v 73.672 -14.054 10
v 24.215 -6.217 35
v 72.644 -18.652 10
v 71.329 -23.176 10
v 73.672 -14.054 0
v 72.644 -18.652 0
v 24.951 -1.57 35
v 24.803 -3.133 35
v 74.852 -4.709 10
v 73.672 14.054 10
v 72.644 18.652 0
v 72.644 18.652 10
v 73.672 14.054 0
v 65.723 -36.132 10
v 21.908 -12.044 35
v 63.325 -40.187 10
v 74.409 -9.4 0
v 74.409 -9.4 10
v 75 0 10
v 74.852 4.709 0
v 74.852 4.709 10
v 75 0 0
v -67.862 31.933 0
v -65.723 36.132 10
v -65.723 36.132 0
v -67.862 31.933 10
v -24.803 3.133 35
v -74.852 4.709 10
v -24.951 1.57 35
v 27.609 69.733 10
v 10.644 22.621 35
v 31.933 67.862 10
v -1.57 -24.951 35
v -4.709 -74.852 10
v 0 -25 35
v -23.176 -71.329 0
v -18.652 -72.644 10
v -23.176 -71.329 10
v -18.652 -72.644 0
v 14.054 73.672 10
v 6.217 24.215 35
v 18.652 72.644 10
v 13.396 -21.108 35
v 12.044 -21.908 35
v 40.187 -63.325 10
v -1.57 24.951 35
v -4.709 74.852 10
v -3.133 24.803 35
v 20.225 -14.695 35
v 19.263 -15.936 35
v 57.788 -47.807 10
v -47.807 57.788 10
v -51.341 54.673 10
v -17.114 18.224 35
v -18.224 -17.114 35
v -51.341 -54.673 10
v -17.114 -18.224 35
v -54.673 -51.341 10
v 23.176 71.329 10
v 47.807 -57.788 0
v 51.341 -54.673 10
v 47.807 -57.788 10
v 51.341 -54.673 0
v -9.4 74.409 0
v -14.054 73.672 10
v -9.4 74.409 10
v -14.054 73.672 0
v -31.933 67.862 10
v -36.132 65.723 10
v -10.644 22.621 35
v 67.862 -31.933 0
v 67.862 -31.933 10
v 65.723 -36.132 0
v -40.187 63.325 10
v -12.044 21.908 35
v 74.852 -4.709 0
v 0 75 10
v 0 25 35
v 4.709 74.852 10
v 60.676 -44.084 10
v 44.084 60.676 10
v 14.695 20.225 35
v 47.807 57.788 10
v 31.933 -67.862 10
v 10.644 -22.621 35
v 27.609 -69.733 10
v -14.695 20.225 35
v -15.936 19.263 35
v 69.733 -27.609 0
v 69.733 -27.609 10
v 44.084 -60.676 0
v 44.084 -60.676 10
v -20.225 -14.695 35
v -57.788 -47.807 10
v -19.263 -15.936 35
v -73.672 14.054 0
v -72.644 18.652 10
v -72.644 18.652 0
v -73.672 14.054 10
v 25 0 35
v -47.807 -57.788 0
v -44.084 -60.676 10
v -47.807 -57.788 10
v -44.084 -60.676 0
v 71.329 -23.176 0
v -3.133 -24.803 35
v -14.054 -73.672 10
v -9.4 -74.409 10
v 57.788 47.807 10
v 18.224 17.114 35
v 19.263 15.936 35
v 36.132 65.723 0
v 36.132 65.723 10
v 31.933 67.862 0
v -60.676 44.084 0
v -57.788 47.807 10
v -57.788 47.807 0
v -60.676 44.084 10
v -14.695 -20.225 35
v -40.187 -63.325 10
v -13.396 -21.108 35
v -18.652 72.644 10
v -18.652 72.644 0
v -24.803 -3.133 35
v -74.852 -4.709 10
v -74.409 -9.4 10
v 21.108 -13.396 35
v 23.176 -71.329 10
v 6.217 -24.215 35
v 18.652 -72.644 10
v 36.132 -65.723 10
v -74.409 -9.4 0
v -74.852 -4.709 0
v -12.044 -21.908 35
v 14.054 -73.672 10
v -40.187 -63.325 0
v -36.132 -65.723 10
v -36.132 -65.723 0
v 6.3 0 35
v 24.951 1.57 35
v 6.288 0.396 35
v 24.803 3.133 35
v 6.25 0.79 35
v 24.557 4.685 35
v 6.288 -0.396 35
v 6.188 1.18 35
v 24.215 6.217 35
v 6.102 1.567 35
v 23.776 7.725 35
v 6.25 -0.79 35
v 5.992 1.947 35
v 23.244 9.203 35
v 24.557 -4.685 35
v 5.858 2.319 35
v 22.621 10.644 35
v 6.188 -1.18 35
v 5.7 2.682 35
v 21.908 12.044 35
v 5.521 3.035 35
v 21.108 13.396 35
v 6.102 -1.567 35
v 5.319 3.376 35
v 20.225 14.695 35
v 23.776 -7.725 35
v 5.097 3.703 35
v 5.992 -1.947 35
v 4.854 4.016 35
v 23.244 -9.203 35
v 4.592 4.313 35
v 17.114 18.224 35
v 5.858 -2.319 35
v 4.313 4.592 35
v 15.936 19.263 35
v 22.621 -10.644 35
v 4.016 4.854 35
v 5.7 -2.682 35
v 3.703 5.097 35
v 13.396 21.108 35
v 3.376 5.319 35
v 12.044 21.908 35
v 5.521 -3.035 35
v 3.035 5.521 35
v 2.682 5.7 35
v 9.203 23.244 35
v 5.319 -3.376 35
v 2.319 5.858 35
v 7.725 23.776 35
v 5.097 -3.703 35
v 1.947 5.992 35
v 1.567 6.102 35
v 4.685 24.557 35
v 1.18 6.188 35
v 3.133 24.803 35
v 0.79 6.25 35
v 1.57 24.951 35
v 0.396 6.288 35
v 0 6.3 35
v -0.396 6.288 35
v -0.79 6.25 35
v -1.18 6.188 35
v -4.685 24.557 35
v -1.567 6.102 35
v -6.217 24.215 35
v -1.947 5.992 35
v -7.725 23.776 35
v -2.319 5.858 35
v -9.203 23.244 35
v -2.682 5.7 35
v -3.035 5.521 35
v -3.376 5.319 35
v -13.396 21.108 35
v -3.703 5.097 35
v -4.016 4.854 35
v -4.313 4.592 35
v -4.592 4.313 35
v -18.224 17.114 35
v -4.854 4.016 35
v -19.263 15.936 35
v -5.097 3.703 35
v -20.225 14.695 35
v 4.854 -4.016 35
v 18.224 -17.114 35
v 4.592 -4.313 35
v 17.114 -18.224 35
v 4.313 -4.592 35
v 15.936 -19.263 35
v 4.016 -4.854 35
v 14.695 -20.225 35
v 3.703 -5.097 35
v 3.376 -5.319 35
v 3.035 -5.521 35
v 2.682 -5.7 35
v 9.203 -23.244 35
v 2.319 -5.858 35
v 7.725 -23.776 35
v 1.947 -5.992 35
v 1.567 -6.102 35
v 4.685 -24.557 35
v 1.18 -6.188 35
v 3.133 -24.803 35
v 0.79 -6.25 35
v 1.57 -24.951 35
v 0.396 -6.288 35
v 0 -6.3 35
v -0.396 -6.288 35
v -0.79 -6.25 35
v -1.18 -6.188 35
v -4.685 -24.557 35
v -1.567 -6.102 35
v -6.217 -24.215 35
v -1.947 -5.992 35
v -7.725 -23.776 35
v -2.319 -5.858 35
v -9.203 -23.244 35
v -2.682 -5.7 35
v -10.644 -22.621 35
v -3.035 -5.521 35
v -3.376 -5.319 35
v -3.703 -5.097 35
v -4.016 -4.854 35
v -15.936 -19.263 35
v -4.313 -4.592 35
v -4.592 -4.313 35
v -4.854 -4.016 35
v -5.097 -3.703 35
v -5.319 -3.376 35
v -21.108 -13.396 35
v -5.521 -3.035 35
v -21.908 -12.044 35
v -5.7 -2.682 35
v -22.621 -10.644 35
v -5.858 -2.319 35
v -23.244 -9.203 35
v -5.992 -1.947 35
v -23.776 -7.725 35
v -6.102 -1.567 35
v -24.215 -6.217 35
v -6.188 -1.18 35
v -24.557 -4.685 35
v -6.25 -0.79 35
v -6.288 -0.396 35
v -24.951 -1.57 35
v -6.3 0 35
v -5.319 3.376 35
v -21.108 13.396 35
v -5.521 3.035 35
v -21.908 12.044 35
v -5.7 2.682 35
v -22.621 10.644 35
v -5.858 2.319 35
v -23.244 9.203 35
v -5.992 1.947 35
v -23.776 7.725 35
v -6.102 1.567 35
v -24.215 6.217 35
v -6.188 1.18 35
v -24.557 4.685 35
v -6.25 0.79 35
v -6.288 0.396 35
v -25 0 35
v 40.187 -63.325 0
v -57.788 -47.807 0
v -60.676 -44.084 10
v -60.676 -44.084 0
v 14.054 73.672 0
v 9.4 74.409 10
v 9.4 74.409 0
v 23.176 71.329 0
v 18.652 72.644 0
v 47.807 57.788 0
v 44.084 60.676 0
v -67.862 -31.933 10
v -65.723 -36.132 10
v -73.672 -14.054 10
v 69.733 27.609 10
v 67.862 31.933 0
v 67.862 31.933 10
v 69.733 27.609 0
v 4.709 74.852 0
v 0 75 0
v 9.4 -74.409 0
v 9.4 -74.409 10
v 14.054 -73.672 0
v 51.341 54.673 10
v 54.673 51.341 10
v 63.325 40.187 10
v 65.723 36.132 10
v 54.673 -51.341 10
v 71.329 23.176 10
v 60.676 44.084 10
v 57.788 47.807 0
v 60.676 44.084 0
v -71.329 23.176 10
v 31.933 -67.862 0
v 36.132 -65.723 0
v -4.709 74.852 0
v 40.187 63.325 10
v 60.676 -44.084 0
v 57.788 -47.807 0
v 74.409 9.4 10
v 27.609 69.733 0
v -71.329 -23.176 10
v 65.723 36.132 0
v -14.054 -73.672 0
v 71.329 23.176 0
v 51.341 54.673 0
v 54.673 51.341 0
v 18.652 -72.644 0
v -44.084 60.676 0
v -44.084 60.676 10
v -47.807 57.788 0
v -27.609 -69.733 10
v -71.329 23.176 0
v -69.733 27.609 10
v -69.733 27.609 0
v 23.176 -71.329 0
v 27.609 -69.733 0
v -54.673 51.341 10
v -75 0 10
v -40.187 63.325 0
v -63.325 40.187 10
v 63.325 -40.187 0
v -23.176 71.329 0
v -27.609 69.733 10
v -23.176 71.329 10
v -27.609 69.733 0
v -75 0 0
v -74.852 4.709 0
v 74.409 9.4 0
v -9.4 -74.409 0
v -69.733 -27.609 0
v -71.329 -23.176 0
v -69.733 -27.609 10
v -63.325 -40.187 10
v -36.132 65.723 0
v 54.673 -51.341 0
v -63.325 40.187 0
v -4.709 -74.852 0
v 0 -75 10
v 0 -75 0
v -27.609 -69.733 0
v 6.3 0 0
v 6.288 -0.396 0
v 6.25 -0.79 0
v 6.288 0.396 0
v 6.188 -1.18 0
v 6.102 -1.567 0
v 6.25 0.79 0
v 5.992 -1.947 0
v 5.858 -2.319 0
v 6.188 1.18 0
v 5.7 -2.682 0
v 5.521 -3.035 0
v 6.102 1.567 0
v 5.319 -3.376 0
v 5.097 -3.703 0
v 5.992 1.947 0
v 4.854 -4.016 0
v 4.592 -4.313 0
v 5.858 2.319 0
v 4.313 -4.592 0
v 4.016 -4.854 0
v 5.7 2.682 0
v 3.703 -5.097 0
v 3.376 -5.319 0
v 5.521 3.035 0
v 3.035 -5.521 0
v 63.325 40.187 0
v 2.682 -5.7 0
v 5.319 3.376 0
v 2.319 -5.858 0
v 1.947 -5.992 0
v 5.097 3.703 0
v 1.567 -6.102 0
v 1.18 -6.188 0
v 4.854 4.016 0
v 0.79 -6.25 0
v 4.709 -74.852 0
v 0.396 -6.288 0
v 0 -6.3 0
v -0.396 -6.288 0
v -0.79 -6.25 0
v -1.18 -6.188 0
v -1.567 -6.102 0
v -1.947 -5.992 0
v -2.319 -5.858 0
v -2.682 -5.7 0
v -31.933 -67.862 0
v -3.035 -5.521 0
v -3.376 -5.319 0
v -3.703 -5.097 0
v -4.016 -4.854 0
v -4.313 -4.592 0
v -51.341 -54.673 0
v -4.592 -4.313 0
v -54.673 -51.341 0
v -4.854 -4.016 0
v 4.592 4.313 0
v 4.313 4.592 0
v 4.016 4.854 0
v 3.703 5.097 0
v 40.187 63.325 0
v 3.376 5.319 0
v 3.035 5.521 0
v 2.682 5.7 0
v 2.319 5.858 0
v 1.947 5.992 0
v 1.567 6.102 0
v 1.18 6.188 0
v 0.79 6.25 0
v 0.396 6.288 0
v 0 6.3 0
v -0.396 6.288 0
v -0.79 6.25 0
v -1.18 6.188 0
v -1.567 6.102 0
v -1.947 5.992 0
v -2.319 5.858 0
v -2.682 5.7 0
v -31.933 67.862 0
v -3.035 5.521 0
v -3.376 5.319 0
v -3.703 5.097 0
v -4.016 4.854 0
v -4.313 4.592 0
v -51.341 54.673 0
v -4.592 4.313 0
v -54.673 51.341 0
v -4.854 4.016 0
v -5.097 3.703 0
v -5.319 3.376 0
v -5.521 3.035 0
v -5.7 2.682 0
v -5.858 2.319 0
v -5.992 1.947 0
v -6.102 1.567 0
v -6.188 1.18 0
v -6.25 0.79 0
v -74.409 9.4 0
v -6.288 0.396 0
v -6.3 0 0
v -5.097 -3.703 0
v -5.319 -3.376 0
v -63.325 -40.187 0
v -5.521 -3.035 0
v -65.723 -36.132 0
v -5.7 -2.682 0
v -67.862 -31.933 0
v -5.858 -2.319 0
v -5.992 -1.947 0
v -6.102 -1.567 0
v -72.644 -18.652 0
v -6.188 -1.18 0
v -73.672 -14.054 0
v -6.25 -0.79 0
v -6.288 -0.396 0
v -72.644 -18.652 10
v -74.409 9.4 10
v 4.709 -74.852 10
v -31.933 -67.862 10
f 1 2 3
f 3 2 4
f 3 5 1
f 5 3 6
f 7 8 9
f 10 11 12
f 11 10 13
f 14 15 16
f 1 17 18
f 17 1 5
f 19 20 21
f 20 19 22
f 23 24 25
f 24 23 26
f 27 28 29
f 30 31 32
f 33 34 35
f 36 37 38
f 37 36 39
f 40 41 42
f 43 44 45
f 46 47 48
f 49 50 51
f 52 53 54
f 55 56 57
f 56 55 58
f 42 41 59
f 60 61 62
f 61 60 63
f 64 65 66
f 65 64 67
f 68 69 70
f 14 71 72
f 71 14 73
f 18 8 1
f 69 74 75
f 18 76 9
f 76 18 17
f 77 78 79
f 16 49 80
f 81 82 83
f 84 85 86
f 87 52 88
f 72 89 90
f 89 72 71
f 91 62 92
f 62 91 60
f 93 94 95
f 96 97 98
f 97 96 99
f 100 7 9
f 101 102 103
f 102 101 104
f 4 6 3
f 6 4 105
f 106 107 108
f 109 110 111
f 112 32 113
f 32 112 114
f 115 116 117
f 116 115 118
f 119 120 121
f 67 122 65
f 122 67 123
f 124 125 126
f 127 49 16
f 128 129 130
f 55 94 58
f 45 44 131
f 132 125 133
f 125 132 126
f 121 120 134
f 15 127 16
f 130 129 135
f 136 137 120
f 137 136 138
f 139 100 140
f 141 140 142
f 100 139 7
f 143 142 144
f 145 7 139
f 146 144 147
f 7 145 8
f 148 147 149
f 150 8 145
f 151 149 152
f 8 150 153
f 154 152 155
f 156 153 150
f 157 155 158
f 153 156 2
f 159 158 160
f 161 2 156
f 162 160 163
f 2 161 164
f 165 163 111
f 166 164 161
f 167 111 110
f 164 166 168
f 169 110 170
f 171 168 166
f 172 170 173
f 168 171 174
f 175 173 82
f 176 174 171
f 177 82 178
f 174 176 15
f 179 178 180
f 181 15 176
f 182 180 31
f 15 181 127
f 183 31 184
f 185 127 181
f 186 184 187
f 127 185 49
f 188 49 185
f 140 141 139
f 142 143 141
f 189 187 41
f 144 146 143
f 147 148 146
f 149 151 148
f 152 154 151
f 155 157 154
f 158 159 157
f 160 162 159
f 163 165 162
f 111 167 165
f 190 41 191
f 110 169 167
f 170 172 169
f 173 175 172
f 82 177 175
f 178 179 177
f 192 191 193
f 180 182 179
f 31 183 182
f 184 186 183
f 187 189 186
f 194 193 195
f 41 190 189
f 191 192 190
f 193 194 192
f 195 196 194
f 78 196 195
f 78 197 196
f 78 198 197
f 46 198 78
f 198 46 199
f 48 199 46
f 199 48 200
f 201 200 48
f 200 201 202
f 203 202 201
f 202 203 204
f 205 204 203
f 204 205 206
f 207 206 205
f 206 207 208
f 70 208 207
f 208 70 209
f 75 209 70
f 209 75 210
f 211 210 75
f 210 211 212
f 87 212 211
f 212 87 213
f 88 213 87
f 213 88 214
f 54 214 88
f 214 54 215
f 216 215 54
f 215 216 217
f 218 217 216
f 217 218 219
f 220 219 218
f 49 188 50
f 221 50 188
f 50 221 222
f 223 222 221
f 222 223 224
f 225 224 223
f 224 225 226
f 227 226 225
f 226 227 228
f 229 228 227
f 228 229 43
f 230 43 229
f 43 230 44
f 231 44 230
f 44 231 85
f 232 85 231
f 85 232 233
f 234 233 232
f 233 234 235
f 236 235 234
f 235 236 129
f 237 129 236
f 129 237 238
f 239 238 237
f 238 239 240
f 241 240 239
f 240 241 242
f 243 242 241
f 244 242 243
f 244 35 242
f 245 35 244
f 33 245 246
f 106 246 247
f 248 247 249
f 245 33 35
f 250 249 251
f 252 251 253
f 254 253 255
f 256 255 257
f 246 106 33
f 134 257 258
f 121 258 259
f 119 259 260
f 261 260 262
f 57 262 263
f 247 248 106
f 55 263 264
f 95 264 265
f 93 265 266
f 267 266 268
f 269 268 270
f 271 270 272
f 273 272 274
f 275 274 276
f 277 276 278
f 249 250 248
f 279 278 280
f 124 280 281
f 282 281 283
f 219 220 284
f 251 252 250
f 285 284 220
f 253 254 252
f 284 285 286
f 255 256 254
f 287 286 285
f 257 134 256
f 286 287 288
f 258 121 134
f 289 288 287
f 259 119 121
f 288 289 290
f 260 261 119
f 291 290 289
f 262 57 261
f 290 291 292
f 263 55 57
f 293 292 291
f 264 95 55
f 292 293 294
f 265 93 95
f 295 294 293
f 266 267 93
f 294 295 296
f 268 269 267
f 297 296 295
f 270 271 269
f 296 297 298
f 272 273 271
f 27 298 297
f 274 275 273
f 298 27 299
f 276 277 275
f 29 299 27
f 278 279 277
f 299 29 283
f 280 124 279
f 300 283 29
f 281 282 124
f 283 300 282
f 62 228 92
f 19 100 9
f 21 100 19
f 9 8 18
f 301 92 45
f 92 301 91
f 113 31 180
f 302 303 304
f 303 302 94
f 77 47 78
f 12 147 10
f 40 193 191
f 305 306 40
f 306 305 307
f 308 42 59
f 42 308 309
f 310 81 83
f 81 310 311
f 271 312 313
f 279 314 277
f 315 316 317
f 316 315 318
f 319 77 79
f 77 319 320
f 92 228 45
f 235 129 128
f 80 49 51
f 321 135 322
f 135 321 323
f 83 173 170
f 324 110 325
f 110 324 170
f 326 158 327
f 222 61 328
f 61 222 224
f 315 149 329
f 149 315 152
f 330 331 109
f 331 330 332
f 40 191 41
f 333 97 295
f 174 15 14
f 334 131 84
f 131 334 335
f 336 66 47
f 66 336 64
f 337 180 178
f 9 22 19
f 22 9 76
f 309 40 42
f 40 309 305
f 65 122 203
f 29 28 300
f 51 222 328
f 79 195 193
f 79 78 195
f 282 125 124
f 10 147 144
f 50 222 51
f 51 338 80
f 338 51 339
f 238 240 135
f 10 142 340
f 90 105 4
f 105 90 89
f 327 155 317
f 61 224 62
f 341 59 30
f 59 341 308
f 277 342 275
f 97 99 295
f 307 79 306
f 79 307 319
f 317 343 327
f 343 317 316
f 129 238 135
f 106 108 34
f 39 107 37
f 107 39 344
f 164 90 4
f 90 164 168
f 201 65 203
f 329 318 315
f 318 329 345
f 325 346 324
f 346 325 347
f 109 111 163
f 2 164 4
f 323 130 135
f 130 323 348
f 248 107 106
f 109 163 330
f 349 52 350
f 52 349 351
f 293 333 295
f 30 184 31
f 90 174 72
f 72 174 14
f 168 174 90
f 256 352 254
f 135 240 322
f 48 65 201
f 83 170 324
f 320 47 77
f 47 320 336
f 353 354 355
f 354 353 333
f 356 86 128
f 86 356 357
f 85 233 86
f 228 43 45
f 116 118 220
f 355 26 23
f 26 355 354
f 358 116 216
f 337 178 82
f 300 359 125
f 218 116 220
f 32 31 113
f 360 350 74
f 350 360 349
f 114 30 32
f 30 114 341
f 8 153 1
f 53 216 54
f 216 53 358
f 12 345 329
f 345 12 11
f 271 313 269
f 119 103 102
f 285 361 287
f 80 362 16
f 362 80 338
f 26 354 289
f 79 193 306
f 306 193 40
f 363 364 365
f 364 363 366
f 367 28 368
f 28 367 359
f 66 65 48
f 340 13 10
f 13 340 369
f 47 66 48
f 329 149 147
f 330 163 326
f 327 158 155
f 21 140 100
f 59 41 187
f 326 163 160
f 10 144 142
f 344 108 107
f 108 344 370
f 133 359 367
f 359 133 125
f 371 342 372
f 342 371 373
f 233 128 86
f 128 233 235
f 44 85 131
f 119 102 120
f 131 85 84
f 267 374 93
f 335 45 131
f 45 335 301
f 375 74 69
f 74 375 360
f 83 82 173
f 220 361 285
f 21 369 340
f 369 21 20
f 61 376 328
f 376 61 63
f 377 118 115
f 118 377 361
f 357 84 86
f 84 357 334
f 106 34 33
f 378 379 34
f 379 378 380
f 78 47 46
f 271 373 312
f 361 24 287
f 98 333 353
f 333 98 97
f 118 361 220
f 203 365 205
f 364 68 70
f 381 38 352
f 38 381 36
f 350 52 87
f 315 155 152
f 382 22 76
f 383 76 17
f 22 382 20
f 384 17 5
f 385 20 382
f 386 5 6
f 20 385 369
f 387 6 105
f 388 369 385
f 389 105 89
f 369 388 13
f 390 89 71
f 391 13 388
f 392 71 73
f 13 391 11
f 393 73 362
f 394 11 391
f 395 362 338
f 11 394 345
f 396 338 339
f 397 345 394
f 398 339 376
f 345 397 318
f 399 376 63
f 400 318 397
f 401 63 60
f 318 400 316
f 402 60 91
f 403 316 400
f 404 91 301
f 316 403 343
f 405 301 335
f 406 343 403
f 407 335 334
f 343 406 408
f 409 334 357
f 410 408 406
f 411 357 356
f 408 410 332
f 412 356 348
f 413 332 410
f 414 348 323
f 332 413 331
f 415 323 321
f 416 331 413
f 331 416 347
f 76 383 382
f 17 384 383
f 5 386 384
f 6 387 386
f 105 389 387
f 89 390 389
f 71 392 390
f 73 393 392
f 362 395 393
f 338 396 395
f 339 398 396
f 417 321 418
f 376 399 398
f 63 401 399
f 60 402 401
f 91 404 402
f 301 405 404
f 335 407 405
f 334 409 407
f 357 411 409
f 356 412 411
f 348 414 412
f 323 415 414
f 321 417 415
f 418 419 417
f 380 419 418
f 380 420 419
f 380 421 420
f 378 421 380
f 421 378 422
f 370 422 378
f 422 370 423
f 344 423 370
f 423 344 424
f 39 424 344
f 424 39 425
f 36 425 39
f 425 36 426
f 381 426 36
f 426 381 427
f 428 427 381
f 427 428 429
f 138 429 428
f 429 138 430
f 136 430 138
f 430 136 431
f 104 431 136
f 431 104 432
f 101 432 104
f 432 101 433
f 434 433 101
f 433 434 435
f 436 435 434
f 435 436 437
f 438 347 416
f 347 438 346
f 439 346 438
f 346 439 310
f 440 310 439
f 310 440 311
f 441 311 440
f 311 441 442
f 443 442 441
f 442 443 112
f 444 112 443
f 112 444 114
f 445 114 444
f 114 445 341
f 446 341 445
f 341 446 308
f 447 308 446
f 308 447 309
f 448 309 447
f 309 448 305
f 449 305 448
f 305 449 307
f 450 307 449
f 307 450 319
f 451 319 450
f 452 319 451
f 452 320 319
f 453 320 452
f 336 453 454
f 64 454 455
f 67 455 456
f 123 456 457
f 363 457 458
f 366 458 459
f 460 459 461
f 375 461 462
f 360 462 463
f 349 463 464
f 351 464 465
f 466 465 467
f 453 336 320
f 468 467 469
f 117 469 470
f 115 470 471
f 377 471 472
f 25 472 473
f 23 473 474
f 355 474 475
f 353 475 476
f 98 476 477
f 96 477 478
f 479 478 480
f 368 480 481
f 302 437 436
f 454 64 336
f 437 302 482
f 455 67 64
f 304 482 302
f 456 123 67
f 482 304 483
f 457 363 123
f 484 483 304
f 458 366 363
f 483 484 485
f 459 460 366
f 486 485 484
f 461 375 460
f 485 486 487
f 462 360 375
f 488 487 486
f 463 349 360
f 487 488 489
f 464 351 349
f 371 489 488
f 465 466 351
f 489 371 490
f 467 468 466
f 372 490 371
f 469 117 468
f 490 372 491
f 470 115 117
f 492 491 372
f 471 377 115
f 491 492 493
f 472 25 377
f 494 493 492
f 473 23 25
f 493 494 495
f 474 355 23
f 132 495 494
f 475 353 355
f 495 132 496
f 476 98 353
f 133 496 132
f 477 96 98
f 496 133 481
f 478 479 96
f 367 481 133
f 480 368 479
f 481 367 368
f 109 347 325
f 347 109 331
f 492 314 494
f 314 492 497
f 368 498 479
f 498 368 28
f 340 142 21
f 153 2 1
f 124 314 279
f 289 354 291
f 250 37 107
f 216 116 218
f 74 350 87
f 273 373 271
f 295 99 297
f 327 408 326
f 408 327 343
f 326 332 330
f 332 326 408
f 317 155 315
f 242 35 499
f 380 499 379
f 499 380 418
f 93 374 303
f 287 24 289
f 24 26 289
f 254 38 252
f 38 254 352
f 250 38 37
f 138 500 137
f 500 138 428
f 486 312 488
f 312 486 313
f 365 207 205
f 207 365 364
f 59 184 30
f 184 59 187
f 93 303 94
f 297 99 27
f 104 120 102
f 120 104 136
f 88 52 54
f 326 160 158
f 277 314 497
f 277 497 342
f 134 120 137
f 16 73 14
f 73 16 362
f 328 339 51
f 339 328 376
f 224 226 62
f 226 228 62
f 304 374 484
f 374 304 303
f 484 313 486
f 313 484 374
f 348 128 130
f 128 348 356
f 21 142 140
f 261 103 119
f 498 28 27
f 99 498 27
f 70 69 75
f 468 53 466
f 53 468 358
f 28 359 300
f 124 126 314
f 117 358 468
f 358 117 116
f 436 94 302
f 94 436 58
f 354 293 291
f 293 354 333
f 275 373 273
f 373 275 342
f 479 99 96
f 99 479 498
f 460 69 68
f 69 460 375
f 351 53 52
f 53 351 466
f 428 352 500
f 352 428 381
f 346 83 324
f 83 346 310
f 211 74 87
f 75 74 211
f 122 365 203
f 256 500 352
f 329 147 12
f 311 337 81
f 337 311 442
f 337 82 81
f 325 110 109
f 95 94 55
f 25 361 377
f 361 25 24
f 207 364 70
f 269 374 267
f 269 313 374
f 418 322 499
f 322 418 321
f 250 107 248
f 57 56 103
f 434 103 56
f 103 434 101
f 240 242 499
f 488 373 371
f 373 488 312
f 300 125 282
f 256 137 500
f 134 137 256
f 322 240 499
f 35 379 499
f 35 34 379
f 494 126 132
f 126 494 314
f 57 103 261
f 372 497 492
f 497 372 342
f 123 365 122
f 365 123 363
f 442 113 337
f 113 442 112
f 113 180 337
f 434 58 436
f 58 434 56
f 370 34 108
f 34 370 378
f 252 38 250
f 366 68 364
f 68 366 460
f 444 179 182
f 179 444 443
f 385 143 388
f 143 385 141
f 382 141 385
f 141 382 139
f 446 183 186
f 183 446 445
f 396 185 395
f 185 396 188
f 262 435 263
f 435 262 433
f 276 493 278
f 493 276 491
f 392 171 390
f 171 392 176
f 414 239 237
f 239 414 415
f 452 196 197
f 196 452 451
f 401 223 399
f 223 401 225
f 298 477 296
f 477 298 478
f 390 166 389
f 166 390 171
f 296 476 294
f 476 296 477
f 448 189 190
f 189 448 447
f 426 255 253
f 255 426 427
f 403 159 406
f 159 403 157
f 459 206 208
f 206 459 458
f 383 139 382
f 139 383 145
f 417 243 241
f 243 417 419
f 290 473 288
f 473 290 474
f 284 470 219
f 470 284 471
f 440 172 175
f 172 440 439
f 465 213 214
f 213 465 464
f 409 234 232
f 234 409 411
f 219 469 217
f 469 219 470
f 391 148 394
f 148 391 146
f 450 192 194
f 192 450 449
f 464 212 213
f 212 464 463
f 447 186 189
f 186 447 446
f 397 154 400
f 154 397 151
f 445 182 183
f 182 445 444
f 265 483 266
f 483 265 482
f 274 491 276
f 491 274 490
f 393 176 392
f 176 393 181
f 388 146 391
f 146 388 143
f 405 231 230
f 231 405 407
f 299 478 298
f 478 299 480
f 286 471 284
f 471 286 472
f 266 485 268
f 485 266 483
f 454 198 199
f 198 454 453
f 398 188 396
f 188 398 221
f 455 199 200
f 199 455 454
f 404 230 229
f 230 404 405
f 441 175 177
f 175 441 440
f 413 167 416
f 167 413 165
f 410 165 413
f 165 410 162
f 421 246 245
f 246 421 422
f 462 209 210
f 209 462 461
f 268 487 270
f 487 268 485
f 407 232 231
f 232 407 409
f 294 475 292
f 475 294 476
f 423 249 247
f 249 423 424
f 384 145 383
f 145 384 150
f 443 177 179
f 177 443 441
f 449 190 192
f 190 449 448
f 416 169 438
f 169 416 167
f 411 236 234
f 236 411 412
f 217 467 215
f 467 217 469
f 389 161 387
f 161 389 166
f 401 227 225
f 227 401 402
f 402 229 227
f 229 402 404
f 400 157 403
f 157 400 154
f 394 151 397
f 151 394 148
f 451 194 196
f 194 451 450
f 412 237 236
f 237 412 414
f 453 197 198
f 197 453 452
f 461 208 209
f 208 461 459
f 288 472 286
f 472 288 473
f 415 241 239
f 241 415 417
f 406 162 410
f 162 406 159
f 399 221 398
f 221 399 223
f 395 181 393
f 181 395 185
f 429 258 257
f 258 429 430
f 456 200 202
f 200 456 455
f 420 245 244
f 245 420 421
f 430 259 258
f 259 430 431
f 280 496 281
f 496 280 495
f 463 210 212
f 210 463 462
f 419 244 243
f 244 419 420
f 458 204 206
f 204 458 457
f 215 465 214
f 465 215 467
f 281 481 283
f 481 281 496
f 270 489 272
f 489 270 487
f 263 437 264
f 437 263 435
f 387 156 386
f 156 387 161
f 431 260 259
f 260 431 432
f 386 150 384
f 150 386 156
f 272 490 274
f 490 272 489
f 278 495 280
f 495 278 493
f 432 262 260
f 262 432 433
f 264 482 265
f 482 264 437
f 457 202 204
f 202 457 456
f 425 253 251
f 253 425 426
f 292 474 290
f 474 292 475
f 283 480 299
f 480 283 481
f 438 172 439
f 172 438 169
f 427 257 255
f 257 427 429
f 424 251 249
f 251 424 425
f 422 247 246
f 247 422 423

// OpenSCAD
// 直径170mm,厚み10mmから高さ30の位置に直径50mmへのHull
$fn=100;
module model() {
	hull() {
		cylinder(d=150, h=10);
		translate([0, 0, 25]){
			cylinder(d=50, h=10);
		}
	}
}

// パーツ同士を減算
difference(){
	model();
	cylinder(d=12.6, h=50);
}
